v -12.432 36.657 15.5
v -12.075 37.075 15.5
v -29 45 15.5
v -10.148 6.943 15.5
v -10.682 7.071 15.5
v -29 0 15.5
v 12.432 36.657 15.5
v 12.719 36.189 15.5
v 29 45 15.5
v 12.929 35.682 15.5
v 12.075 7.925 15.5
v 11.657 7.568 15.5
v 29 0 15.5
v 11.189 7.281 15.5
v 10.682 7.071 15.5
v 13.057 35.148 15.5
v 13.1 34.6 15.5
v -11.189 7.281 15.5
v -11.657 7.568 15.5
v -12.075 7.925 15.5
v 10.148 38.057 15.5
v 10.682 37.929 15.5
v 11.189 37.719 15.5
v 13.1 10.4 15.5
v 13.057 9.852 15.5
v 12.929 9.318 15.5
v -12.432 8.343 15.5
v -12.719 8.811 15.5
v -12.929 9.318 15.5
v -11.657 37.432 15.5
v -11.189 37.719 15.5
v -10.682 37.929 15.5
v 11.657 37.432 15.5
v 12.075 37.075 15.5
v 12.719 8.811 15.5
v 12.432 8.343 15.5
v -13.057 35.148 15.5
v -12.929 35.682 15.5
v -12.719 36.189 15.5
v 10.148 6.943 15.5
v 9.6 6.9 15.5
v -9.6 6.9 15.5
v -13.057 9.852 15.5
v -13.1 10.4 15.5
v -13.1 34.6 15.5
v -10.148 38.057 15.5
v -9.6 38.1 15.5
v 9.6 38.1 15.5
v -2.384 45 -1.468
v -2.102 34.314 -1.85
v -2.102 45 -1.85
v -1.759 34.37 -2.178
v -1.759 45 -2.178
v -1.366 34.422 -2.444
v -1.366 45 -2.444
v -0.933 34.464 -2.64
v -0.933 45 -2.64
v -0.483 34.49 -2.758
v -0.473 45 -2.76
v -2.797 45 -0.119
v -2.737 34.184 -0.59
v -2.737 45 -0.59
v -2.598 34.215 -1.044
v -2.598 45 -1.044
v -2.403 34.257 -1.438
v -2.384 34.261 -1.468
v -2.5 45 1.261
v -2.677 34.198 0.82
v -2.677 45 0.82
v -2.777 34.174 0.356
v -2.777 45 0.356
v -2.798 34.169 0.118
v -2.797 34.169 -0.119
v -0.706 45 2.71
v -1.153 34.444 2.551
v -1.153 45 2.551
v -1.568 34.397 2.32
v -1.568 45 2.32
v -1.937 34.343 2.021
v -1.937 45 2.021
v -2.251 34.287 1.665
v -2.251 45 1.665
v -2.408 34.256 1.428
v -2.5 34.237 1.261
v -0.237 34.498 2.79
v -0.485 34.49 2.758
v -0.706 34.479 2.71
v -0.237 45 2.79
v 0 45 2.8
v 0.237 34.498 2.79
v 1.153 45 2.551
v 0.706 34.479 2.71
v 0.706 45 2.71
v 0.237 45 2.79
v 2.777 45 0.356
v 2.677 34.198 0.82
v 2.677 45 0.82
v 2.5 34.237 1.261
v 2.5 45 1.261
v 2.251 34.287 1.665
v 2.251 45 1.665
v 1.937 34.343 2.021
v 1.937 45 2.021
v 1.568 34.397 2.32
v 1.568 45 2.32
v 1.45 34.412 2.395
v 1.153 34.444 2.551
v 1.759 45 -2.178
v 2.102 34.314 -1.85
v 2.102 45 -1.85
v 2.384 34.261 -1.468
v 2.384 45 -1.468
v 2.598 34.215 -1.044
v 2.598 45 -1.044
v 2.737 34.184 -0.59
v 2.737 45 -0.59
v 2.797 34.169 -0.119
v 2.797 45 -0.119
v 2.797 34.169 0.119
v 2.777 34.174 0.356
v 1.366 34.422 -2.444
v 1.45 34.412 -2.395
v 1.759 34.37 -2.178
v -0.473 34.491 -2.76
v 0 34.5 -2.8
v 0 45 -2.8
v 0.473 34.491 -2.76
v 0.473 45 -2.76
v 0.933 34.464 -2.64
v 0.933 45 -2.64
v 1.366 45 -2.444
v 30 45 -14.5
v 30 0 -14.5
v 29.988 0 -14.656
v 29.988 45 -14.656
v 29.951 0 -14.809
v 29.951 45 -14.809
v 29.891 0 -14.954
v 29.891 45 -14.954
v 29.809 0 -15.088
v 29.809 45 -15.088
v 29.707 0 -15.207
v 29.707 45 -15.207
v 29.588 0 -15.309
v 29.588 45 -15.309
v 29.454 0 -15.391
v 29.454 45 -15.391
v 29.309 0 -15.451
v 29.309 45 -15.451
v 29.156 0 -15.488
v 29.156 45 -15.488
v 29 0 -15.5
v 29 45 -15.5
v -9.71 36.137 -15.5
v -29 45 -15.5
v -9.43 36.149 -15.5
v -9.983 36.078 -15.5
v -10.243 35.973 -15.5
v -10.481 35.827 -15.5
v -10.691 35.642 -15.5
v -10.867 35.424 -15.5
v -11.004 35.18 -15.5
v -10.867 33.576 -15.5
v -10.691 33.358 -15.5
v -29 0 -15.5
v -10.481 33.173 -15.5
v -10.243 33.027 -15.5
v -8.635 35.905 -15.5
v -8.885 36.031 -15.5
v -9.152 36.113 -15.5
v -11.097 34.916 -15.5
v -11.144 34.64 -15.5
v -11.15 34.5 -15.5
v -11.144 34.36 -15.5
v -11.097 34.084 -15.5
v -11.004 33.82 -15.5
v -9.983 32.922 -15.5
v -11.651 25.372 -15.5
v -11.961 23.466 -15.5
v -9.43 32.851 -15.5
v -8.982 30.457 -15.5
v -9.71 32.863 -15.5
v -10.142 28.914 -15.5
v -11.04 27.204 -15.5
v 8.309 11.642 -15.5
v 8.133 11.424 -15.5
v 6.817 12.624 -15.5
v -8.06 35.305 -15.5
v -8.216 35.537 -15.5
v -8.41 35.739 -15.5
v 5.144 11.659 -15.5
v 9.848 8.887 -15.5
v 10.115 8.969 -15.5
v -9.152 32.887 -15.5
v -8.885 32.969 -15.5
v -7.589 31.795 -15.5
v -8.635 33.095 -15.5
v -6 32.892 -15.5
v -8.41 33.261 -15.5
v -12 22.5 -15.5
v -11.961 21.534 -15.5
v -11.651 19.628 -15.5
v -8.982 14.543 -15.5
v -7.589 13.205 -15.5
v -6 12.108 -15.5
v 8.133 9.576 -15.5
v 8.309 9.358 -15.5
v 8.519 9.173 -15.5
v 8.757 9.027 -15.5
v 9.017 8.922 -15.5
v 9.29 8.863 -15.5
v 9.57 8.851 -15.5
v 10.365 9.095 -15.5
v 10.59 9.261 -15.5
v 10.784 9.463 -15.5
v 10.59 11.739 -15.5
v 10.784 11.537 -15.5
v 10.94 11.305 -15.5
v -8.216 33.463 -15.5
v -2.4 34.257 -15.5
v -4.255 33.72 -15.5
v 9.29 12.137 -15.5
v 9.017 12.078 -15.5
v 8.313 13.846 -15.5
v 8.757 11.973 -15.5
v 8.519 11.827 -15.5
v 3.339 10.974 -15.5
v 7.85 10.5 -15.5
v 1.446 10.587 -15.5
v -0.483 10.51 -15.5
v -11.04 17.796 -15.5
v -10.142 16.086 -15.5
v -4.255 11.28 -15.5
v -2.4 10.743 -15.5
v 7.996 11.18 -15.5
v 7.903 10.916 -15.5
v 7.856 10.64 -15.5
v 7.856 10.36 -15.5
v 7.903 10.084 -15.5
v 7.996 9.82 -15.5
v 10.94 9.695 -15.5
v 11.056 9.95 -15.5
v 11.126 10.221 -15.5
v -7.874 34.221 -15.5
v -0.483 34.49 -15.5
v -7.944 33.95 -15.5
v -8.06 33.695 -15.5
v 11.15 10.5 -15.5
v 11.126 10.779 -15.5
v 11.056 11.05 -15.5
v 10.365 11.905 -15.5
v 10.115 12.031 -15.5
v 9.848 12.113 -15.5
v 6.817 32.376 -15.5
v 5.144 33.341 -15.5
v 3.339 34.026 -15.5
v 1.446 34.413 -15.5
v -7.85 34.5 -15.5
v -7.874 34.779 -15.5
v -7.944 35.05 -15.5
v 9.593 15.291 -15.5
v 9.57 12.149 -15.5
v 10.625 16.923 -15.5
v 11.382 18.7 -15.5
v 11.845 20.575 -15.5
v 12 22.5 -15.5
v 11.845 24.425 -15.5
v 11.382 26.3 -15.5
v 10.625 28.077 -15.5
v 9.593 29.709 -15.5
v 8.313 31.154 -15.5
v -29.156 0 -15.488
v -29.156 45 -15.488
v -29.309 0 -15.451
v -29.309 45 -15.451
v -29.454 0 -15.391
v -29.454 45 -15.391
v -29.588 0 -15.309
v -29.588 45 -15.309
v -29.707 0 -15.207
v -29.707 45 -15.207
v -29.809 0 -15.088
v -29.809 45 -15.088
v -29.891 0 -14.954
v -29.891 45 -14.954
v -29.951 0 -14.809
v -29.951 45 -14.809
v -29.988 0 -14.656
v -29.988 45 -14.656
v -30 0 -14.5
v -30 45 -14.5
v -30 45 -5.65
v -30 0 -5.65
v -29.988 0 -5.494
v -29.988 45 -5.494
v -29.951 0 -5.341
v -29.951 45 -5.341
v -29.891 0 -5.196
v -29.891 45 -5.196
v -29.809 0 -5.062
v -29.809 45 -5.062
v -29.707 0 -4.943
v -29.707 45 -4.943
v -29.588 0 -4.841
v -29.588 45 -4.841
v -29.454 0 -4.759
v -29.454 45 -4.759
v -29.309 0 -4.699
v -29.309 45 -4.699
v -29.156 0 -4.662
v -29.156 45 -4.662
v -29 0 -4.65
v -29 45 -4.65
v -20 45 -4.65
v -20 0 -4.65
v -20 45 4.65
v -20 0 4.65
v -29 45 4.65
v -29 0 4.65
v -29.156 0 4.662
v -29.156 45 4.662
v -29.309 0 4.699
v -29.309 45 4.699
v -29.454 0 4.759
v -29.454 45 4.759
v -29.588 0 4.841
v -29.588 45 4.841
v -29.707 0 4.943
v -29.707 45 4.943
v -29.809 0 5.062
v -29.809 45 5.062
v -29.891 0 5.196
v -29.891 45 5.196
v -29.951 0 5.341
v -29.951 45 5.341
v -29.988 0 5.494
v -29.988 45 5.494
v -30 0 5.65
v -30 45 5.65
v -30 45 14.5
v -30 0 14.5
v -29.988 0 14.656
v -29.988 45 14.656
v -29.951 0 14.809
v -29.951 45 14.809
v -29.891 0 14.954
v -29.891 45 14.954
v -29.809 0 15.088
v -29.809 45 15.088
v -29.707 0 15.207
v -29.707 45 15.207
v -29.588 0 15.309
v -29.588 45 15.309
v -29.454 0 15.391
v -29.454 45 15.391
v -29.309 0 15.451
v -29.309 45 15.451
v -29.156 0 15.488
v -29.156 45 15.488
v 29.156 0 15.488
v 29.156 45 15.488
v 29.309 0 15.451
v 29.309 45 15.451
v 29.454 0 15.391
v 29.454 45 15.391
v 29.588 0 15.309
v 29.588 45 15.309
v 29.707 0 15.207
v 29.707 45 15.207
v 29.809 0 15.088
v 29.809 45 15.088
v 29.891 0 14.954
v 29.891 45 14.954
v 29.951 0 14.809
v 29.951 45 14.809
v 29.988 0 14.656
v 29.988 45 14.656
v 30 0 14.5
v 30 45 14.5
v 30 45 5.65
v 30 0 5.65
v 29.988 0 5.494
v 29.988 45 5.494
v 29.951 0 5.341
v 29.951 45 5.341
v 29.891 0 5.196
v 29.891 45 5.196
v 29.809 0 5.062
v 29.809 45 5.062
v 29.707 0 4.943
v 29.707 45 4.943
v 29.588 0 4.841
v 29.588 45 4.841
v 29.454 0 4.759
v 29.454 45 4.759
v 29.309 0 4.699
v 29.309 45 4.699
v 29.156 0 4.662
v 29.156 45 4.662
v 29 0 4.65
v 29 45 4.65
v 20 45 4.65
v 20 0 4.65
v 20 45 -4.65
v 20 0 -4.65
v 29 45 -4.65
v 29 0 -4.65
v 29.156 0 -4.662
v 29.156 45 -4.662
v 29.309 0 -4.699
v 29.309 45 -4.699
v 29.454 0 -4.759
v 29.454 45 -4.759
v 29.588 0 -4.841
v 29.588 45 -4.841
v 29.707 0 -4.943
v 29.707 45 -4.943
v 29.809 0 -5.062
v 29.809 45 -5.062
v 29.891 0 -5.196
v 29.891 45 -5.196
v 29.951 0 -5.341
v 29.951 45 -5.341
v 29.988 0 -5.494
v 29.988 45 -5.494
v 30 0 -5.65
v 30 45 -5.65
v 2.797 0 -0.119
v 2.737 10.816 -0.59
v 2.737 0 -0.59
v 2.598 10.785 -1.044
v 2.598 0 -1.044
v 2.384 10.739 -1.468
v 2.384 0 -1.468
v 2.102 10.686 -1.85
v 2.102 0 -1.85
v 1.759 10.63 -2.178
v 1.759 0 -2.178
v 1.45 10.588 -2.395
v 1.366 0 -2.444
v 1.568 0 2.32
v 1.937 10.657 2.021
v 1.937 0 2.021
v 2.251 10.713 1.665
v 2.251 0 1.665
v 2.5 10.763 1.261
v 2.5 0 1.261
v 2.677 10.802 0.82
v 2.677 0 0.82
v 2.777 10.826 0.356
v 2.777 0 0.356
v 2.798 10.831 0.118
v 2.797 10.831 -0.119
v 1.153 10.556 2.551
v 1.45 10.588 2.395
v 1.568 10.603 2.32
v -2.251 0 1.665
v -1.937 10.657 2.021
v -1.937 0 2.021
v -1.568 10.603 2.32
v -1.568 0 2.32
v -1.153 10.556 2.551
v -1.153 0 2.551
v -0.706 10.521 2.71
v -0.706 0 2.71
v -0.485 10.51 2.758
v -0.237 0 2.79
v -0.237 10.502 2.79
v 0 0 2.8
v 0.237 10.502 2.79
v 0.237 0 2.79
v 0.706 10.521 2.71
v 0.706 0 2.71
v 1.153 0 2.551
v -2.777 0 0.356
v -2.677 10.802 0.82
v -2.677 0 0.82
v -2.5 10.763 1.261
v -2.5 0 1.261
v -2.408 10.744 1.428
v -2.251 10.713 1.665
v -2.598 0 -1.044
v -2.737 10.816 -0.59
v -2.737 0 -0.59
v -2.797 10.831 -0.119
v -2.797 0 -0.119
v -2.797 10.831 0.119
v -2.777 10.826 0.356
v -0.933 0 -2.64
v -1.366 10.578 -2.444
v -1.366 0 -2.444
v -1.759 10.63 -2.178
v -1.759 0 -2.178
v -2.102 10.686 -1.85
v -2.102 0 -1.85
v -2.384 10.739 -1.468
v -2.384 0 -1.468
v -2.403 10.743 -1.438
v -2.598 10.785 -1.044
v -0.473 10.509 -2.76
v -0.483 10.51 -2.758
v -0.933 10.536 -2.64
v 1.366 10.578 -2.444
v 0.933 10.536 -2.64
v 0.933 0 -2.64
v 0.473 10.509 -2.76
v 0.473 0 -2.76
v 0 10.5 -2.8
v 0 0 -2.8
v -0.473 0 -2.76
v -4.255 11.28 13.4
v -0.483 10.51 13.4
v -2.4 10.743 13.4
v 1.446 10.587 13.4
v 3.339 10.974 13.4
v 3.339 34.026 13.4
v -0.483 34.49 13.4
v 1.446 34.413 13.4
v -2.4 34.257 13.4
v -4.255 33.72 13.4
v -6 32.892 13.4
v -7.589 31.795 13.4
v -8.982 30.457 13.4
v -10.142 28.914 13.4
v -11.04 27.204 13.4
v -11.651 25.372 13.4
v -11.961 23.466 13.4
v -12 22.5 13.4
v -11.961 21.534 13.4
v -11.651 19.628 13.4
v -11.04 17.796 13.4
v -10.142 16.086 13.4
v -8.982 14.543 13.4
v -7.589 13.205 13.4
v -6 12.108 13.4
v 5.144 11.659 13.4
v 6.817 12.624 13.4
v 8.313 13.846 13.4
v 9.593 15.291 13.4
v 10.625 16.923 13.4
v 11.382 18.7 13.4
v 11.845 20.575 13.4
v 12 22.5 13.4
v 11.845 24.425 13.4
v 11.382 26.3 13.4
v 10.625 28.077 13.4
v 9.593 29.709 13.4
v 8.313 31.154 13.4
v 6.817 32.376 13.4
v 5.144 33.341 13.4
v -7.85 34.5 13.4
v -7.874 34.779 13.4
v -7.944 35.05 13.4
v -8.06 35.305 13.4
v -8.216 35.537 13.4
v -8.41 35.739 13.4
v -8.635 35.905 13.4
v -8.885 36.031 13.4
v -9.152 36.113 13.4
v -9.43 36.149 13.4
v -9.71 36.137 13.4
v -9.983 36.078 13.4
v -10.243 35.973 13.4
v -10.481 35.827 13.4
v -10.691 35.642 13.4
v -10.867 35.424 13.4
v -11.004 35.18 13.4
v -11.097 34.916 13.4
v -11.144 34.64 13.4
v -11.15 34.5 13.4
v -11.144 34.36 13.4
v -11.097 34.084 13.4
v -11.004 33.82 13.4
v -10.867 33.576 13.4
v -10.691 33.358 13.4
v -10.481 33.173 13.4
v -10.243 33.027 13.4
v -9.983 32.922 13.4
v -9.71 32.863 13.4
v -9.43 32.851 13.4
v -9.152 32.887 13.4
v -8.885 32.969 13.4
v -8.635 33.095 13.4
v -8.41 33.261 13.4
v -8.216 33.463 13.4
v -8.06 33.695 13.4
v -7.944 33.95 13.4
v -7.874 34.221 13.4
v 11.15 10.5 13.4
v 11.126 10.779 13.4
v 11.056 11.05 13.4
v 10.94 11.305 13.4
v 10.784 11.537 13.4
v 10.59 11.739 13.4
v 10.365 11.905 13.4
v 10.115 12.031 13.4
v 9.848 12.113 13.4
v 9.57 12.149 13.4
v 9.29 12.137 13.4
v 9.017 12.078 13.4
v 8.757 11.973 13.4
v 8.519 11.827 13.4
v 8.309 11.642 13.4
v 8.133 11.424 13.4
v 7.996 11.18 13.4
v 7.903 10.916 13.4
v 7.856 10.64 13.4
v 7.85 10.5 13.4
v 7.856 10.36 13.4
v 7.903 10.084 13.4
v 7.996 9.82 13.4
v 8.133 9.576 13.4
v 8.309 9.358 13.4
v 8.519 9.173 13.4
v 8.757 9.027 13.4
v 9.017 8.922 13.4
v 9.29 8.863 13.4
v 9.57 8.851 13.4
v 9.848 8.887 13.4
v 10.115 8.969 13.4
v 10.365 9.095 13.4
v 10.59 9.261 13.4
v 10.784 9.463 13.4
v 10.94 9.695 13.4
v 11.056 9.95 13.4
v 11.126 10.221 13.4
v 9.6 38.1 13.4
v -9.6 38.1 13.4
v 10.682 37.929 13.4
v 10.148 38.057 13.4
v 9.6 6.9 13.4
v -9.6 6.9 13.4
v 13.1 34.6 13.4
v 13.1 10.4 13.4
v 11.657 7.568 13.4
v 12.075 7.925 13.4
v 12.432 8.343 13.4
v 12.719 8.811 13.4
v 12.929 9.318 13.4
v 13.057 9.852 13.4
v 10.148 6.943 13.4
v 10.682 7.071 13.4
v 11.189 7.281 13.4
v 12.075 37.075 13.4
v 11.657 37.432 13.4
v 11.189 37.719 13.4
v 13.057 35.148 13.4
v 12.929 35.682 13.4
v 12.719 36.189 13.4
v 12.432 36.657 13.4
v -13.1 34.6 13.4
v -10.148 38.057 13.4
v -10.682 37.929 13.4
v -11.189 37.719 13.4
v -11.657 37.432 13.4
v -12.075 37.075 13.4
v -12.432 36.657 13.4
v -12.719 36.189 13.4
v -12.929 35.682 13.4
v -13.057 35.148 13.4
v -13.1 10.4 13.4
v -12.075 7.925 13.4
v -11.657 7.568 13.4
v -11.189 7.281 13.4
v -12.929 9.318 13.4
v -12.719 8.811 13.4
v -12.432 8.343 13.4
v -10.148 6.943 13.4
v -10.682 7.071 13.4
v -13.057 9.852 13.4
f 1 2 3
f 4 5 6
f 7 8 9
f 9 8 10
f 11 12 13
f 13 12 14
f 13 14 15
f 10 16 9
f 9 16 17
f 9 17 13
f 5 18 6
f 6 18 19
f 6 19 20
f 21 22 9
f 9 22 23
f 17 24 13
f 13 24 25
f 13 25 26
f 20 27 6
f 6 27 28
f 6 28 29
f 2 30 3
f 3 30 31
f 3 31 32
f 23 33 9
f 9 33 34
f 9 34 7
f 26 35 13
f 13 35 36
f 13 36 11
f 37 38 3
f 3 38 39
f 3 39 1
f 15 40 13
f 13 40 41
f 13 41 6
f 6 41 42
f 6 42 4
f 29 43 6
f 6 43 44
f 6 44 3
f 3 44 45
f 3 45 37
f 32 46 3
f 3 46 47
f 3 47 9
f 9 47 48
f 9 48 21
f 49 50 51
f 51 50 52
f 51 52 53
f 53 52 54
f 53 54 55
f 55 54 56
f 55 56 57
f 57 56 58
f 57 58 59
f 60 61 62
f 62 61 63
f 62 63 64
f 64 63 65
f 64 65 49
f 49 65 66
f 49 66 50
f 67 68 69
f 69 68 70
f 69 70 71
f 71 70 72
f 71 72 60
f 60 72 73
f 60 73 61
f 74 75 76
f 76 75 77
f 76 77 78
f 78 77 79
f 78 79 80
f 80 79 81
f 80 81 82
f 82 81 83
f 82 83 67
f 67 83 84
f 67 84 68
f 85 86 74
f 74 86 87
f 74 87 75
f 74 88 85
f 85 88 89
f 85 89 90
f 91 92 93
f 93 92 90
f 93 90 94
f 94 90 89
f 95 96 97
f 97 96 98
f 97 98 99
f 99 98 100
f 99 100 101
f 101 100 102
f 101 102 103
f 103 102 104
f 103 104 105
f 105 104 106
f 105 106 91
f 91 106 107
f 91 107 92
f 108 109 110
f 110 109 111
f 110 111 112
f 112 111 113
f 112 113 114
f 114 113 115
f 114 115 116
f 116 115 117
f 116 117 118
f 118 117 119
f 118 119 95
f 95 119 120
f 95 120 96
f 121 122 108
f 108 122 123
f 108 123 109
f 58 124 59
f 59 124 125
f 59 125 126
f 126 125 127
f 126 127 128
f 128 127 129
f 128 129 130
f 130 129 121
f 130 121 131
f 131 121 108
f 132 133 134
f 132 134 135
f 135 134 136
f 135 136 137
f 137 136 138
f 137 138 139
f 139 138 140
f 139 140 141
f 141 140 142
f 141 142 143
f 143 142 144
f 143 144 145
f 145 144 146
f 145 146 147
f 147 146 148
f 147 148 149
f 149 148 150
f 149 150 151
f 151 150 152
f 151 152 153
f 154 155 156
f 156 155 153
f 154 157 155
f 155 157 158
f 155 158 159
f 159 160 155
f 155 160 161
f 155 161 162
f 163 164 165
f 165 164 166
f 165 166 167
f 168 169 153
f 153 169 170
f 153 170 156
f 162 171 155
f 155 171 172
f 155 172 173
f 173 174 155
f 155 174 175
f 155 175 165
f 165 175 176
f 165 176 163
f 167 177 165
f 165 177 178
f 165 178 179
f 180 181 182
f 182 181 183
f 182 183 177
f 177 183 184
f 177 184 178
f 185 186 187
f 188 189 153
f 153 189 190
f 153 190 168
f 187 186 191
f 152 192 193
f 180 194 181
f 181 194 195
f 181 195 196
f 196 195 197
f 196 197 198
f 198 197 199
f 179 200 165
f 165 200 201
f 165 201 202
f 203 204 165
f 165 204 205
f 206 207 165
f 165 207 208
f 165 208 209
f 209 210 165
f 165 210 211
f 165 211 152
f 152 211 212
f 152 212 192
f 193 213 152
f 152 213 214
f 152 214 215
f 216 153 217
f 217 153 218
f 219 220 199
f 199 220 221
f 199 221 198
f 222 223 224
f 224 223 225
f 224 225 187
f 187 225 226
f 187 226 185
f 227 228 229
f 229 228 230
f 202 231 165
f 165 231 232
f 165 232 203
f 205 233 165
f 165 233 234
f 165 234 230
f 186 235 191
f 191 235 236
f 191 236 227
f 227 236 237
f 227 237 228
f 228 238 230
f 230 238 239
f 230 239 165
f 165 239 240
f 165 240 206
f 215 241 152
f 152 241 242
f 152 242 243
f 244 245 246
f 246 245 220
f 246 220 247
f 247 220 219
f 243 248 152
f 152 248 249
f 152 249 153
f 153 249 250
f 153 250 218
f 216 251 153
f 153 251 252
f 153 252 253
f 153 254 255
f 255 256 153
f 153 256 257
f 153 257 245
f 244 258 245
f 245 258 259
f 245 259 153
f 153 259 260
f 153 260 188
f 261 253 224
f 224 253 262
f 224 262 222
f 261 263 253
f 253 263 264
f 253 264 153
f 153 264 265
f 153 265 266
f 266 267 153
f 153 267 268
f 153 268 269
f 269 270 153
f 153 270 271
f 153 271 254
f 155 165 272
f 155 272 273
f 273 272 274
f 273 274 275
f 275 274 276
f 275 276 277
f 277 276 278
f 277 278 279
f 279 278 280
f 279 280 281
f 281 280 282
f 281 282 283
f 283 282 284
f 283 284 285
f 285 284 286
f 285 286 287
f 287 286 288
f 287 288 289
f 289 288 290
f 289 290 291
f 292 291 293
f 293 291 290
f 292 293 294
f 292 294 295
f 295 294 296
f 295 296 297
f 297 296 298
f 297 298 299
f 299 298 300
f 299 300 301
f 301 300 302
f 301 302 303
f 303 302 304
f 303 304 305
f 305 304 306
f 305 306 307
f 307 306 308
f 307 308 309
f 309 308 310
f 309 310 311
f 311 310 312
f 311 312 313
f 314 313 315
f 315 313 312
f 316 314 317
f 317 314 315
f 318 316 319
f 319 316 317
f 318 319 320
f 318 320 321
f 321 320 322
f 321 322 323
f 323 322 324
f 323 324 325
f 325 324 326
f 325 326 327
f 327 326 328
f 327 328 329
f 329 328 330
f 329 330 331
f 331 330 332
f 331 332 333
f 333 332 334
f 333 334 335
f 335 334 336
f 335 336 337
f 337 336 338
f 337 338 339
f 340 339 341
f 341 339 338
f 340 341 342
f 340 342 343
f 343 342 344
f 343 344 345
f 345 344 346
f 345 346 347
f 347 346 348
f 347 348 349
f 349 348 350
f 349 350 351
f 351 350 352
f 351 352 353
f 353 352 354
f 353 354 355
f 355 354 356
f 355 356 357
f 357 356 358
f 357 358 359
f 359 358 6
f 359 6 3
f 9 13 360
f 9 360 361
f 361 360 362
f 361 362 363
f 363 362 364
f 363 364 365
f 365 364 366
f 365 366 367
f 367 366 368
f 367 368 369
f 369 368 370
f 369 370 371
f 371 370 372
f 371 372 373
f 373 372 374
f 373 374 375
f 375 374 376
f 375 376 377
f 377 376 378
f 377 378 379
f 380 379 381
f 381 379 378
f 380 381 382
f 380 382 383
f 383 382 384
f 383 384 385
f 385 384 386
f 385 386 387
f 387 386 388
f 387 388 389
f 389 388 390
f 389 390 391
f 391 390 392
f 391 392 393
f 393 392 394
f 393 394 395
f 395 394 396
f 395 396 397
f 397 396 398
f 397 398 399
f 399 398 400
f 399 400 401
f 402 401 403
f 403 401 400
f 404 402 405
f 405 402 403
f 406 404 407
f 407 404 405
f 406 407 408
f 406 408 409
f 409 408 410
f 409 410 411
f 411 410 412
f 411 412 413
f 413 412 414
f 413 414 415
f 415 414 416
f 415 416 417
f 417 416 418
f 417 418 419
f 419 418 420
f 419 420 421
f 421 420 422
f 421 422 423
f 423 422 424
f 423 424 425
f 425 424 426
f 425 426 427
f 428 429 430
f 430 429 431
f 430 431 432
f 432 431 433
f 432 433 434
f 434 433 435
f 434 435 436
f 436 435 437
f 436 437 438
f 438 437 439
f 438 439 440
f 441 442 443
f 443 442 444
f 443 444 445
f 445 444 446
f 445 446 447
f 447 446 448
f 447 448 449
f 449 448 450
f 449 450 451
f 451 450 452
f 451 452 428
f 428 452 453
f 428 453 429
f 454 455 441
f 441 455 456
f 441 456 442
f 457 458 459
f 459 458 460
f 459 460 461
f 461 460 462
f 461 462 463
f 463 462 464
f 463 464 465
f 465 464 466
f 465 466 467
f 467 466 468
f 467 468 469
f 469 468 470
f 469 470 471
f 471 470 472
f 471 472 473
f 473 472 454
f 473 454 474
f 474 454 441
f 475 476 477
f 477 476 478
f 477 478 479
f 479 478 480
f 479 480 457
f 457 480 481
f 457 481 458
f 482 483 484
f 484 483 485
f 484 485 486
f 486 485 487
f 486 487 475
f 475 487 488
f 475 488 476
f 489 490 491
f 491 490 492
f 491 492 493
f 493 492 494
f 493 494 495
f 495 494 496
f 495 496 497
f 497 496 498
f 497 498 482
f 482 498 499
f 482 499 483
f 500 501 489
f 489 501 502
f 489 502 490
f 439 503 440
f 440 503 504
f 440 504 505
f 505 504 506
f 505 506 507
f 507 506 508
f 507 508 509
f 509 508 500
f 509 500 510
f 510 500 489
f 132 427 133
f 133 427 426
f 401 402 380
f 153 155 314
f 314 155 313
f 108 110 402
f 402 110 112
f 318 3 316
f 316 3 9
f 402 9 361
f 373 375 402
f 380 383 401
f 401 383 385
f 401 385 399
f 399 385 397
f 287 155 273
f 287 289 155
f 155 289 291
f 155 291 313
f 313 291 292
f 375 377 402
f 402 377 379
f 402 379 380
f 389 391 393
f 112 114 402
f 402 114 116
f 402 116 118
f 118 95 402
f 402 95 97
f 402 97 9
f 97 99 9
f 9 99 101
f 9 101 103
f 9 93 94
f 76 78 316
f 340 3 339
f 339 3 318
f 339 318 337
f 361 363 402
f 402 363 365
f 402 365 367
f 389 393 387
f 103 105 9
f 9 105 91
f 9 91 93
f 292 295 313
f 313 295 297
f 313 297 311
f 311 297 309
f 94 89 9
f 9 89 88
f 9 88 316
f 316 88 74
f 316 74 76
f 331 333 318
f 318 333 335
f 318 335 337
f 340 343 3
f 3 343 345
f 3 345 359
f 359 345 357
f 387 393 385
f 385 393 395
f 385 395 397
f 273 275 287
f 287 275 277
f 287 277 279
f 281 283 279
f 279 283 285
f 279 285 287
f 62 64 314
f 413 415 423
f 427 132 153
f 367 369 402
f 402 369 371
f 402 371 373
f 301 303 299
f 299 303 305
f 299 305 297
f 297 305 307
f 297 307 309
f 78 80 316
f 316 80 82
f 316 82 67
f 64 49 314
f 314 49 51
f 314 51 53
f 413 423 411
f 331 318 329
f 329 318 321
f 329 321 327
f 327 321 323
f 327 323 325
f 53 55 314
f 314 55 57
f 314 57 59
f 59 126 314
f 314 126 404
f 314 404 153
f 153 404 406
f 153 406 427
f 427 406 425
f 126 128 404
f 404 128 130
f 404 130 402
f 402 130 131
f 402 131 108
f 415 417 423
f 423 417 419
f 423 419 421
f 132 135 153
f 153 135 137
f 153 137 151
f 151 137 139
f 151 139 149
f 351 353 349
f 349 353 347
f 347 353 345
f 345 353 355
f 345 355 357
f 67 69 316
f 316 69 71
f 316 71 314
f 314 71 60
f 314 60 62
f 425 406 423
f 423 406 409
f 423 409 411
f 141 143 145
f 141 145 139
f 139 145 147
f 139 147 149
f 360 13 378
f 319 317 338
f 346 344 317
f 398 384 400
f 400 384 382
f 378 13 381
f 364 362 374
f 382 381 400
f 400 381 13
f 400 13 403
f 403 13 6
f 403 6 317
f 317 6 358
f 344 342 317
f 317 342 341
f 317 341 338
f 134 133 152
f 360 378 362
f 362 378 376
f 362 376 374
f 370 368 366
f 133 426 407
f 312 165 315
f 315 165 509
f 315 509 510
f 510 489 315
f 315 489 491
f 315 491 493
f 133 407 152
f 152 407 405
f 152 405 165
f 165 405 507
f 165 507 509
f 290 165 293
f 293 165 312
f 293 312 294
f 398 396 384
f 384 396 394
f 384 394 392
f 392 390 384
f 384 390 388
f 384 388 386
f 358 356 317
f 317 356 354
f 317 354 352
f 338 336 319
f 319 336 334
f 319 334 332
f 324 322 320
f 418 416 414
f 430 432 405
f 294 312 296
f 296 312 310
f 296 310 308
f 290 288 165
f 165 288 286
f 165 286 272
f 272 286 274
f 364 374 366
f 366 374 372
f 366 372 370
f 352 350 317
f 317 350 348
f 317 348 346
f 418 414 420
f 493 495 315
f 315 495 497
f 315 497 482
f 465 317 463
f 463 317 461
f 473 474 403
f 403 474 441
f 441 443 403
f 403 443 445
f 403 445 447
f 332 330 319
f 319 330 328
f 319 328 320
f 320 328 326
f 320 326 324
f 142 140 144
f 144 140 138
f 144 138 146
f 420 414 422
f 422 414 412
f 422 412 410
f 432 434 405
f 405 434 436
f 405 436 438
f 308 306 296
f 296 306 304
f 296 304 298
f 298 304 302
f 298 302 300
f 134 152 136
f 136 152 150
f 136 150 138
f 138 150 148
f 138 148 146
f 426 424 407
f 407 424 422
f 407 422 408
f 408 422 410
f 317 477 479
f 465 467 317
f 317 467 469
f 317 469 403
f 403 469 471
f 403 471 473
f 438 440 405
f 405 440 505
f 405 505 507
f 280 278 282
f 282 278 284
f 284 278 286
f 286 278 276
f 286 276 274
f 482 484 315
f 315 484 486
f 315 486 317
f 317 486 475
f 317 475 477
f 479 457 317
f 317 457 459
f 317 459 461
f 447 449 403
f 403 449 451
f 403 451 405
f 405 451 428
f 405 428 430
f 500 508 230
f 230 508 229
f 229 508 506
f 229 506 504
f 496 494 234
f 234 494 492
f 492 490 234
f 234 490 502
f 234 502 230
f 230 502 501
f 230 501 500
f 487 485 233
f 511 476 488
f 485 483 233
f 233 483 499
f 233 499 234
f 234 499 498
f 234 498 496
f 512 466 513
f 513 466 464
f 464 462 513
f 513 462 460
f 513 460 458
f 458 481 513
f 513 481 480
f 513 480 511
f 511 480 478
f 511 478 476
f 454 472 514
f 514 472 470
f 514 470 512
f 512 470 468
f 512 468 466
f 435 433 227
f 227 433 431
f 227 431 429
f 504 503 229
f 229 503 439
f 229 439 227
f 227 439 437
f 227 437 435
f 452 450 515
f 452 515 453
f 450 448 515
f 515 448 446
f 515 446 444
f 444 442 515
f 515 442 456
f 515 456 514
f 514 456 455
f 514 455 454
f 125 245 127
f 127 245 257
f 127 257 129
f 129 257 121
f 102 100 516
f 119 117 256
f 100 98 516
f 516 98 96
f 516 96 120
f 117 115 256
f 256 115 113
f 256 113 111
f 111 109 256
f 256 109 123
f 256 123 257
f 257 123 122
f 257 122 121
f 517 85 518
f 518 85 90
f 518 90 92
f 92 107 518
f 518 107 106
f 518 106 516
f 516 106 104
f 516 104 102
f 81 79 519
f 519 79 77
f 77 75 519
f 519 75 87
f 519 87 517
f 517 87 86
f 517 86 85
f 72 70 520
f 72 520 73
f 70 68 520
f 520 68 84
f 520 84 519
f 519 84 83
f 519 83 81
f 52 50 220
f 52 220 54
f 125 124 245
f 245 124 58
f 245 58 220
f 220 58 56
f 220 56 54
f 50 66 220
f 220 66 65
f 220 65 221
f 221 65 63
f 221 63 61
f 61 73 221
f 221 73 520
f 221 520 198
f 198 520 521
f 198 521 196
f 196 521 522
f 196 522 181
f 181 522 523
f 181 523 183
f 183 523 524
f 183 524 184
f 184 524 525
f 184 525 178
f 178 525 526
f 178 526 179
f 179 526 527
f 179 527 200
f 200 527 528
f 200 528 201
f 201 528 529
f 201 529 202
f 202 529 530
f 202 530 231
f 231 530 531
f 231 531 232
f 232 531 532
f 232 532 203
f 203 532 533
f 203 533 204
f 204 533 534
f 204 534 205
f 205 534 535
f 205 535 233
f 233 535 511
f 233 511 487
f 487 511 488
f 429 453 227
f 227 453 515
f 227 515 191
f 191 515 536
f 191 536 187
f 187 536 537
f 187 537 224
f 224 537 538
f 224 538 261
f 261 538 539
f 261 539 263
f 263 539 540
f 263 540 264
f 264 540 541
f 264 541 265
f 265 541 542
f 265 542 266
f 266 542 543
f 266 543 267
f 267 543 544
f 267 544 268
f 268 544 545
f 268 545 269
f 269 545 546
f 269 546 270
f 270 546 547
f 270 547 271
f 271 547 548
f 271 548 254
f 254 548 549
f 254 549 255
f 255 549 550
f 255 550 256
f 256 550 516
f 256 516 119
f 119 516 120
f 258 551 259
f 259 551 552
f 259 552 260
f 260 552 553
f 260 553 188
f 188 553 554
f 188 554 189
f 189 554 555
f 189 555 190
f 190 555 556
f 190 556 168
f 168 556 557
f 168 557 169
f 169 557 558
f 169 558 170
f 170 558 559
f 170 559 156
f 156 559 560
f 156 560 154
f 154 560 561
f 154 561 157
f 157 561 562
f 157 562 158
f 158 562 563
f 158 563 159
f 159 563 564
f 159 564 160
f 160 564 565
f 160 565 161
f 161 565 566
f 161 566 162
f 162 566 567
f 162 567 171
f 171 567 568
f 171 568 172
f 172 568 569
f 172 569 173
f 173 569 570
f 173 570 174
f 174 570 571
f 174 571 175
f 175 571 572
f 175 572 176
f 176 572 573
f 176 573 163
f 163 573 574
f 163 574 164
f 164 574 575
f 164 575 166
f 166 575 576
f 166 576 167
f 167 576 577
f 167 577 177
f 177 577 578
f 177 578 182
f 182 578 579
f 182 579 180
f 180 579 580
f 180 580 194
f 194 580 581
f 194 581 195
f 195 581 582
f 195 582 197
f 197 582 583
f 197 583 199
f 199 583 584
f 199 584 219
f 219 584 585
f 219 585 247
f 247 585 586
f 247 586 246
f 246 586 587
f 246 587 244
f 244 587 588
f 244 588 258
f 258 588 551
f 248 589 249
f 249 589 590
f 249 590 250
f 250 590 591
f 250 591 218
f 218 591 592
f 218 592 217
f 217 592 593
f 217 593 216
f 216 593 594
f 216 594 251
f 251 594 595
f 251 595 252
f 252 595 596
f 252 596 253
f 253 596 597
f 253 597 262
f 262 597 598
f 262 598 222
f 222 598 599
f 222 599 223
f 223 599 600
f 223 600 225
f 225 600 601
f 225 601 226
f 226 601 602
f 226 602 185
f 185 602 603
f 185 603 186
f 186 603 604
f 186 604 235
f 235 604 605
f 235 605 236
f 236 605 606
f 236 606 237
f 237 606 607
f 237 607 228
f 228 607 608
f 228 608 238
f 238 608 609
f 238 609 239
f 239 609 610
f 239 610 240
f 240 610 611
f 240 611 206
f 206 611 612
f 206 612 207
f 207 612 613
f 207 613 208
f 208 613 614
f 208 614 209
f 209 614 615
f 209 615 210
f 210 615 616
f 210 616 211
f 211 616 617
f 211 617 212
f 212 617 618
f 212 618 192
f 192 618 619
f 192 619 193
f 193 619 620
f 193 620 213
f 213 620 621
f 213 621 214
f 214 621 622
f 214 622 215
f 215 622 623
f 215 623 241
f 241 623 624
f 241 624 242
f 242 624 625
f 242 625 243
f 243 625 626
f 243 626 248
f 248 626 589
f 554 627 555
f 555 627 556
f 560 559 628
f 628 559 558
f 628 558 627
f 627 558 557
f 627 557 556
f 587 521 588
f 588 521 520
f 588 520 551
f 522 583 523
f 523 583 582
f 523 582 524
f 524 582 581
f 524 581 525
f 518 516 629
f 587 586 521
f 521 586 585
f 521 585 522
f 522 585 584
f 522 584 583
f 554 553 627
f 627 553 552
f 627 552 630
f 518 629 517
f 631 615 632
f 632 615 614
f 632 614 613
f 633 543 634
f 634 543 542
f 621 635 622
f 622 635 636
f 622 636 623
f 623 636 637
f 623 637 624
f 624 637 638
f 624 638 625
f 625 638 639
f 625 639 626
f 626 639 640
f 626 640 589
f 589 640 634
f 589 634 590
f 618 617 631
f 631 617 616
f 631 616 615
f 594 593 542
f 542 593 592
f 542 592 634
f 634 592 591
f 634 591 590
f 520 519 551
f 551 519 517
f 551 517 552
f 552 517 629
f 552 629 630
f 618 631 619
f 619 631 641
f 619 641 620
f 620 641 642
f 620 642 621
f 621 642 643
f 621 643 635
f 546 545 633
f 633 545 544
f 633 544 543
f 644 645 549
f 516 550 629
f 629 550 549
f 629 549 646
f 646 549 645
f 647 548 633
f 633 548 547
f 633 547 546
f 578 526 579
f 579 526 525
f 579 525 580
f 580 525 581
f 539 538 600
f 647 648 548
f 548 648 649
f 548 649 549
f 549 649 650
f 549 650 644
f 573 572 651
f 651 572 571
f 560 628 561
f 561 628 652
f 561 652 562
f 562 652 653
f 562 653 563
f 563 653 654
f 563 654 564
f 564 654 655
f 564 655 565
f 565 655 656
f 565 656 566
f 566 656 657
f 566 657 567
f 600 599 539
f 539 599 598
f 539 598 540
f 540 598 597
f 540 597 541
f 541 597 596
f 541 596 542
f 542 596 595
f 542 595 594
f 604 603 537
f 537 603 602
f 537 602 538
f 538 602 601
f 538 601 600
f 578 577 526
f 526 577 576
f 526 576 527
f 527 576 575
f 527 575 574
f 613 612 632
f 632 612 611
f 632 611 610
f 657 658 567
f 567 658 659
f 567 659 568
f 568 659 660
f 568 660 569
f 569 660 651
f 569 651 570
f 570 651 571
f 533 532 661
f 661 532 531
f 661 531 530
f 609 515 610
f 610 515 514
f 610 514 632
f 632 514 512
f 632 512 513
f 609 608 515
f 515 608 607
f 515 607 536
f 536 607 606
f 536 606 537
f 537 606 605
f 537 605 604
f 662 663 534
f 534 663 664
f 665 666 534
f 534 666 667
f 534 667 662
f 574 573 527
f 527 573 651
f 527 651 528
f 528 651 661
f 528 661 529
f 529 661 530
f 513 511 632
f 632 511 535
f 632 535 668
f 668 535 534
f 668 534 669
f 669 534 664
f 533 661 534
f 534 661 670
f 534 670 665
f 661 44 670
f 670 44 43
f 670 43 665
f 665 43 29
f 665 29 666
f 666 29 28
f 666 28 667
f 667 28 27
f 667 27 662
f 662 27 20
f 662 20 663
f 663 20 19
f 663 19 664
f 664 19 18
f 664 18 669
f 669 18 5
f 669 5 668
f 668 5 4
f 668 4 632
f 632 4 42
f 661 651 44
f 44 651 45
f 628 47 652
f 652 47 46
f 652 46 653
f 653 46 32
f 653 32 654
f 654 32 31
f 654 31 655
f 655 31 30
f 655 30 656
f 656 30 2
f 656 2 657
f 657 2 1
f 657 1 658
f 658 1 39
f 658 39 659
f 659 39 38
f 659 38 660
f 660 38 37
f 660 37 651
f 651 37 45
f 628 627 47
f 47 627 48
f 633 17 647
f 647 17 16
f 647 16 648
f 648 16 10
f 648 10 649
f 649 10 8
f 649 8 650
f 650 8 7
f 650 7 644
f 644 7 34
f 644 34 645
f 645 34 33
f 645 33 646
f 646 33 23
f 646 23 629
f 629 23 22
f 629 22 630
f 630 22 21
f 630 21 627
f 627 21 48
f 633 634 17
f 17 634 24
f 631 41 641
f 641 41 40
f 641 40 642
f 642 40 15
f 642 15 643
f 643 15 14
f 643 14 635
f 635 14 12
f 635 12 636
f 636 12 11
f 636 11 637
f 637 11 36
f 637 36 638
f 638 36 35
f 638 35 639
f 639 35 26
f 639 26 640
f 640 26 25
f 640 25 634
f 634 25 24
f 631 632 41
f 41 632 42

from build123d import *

# Parameters (mm, degrees)
SKETCH1_R           = 2.8
BOSS_EXTRUDE1_DEPTH = 45
SKETCH2_R           = 12
SKETCH2_R_2         = 1.65
CUT_EXTRUDE1_DEPTH  = 56
CUT_EXTRUDE2_DEPTH  = 2.1


with BuildPart() as part:
    # Sketch1 → Boss-Extrude1 (new body)
    with BuildSketch(Plane(origin=(0, 0, 0), x_dir=(1, 0, 0), z_dir=(0, 1, 0))):
        with BuildLine():
            Line((20, -4.65), (20, 4.65))
            Line((20, 4.65), (29, 4.65))
            ThreePointArc((29, 4.65), (29.707106781, 4.942893219), (30, 5.65))
            Line((30, 5.65), (30, 14.5))
            ThreePointArc((30, 14.5), (29.707106781, 15.207106781), (29, 15.5))
            Line((29, 15.5), (20, 15.5))
            Line((20, 15.5), (-20, 15.5))
            Line((-20, 15.5), (-29, 15.5))
            ThreePointArc((-29, 15.5), (-29.707106781, 15.207106781), (-30, 14.5))
            Line((-30, 14.5), (-30, 5.65))
            ThreePointArc((-30, 5.65), (-29.707106781, 4.942893219), (-29, 4.65))
            Line((-29, 4.65), (-20, 4.65))
            Line((-20, 4.65), (-20, -4.65))
            Line((-20, -4.65), (-29, -4.65))
            ThreePointArc((-29, -4.65), (-29.707106781, -4.942893219), (-30, -5.65))
            Line((-30, -5.65), (-30, -14.5))
            ThreePointArc((-30, -14.5), (-29.707106781, -15.207106781), (-29, -15.5))
            Line((-29, -15.5), (-20, -15.5))
            Line((-20, -15.5), (20, -15.5))
            Line((20, -15.5), (29, -15.5))
            ThreePointArc((29, -15.5), (29.707106781, -15.207106781), (30, -14.5))
            Line((30, -14.5), (30, -5.65))
            ThreePointArc((30, -5.65), (29.707106781, -4.942893219), (29, -4.65))
            Line((29, -4.65), (20, -4.65))
        make_face()
        with Locations(Location((0, 0, 0), (0, 0, 90))):
            Circle(SKETCH1_R, mode=Mode.SUBTRACT)
    extrude(amount=BOSS_EXTRUDE1_DEPTH)

    # Sketch2 → Cut-Extrude1 (cut)
    with BuildSketch(Plane.XY.offset(15.5)):
        with Locations((0, 22.5)):
            Circle(SKETCH2_R)
        with Locations((-9.5, 34.5)):
            Circle(SKETCH2_R_2)
        with Locations((9.5, 10.5)):
            Circle(SKETCH2_R_2)
    extrude(amount=-CUT_EXTRUDE1_DEPTH, mode=Mode.SUBTRACT)

    # Sketch3 → Cut-Extrude2 (cut)
    with BuildSketch(Plane.XY.offset(15.5)):
        with BuildLine():
            Line((-9.6, 38.1), (9.6, 38.1))
            ThreePointArc((9.6, 38.1), (12.074873734, 37.074873734), (13.1, 34.6))
            Line((13.1, 34.6), (13.1, 10.4))
            ThreePointArc((13.1, 10.4), (12.074873734, 7.925126266), (9.6, 6.9))
            Line((9.6, 6.9), (-9.6, 6.9))
            ThreePointArc((-9.6, 6.9), (-12.074873734, 7.925126266), (-13.1, 10.4))
            Line((-13.1, 10.4), (-13.1, 34.6))
            ThreePointArc((-13.1, 34.6), (-12.074873734, 37.074873734), (-9.6, 38.1))
        make_face()
    extrude(amount=-CUT_EXTRUDE2_DEPTH, mode=Mode.SUBTRACT)


solid = part.part
